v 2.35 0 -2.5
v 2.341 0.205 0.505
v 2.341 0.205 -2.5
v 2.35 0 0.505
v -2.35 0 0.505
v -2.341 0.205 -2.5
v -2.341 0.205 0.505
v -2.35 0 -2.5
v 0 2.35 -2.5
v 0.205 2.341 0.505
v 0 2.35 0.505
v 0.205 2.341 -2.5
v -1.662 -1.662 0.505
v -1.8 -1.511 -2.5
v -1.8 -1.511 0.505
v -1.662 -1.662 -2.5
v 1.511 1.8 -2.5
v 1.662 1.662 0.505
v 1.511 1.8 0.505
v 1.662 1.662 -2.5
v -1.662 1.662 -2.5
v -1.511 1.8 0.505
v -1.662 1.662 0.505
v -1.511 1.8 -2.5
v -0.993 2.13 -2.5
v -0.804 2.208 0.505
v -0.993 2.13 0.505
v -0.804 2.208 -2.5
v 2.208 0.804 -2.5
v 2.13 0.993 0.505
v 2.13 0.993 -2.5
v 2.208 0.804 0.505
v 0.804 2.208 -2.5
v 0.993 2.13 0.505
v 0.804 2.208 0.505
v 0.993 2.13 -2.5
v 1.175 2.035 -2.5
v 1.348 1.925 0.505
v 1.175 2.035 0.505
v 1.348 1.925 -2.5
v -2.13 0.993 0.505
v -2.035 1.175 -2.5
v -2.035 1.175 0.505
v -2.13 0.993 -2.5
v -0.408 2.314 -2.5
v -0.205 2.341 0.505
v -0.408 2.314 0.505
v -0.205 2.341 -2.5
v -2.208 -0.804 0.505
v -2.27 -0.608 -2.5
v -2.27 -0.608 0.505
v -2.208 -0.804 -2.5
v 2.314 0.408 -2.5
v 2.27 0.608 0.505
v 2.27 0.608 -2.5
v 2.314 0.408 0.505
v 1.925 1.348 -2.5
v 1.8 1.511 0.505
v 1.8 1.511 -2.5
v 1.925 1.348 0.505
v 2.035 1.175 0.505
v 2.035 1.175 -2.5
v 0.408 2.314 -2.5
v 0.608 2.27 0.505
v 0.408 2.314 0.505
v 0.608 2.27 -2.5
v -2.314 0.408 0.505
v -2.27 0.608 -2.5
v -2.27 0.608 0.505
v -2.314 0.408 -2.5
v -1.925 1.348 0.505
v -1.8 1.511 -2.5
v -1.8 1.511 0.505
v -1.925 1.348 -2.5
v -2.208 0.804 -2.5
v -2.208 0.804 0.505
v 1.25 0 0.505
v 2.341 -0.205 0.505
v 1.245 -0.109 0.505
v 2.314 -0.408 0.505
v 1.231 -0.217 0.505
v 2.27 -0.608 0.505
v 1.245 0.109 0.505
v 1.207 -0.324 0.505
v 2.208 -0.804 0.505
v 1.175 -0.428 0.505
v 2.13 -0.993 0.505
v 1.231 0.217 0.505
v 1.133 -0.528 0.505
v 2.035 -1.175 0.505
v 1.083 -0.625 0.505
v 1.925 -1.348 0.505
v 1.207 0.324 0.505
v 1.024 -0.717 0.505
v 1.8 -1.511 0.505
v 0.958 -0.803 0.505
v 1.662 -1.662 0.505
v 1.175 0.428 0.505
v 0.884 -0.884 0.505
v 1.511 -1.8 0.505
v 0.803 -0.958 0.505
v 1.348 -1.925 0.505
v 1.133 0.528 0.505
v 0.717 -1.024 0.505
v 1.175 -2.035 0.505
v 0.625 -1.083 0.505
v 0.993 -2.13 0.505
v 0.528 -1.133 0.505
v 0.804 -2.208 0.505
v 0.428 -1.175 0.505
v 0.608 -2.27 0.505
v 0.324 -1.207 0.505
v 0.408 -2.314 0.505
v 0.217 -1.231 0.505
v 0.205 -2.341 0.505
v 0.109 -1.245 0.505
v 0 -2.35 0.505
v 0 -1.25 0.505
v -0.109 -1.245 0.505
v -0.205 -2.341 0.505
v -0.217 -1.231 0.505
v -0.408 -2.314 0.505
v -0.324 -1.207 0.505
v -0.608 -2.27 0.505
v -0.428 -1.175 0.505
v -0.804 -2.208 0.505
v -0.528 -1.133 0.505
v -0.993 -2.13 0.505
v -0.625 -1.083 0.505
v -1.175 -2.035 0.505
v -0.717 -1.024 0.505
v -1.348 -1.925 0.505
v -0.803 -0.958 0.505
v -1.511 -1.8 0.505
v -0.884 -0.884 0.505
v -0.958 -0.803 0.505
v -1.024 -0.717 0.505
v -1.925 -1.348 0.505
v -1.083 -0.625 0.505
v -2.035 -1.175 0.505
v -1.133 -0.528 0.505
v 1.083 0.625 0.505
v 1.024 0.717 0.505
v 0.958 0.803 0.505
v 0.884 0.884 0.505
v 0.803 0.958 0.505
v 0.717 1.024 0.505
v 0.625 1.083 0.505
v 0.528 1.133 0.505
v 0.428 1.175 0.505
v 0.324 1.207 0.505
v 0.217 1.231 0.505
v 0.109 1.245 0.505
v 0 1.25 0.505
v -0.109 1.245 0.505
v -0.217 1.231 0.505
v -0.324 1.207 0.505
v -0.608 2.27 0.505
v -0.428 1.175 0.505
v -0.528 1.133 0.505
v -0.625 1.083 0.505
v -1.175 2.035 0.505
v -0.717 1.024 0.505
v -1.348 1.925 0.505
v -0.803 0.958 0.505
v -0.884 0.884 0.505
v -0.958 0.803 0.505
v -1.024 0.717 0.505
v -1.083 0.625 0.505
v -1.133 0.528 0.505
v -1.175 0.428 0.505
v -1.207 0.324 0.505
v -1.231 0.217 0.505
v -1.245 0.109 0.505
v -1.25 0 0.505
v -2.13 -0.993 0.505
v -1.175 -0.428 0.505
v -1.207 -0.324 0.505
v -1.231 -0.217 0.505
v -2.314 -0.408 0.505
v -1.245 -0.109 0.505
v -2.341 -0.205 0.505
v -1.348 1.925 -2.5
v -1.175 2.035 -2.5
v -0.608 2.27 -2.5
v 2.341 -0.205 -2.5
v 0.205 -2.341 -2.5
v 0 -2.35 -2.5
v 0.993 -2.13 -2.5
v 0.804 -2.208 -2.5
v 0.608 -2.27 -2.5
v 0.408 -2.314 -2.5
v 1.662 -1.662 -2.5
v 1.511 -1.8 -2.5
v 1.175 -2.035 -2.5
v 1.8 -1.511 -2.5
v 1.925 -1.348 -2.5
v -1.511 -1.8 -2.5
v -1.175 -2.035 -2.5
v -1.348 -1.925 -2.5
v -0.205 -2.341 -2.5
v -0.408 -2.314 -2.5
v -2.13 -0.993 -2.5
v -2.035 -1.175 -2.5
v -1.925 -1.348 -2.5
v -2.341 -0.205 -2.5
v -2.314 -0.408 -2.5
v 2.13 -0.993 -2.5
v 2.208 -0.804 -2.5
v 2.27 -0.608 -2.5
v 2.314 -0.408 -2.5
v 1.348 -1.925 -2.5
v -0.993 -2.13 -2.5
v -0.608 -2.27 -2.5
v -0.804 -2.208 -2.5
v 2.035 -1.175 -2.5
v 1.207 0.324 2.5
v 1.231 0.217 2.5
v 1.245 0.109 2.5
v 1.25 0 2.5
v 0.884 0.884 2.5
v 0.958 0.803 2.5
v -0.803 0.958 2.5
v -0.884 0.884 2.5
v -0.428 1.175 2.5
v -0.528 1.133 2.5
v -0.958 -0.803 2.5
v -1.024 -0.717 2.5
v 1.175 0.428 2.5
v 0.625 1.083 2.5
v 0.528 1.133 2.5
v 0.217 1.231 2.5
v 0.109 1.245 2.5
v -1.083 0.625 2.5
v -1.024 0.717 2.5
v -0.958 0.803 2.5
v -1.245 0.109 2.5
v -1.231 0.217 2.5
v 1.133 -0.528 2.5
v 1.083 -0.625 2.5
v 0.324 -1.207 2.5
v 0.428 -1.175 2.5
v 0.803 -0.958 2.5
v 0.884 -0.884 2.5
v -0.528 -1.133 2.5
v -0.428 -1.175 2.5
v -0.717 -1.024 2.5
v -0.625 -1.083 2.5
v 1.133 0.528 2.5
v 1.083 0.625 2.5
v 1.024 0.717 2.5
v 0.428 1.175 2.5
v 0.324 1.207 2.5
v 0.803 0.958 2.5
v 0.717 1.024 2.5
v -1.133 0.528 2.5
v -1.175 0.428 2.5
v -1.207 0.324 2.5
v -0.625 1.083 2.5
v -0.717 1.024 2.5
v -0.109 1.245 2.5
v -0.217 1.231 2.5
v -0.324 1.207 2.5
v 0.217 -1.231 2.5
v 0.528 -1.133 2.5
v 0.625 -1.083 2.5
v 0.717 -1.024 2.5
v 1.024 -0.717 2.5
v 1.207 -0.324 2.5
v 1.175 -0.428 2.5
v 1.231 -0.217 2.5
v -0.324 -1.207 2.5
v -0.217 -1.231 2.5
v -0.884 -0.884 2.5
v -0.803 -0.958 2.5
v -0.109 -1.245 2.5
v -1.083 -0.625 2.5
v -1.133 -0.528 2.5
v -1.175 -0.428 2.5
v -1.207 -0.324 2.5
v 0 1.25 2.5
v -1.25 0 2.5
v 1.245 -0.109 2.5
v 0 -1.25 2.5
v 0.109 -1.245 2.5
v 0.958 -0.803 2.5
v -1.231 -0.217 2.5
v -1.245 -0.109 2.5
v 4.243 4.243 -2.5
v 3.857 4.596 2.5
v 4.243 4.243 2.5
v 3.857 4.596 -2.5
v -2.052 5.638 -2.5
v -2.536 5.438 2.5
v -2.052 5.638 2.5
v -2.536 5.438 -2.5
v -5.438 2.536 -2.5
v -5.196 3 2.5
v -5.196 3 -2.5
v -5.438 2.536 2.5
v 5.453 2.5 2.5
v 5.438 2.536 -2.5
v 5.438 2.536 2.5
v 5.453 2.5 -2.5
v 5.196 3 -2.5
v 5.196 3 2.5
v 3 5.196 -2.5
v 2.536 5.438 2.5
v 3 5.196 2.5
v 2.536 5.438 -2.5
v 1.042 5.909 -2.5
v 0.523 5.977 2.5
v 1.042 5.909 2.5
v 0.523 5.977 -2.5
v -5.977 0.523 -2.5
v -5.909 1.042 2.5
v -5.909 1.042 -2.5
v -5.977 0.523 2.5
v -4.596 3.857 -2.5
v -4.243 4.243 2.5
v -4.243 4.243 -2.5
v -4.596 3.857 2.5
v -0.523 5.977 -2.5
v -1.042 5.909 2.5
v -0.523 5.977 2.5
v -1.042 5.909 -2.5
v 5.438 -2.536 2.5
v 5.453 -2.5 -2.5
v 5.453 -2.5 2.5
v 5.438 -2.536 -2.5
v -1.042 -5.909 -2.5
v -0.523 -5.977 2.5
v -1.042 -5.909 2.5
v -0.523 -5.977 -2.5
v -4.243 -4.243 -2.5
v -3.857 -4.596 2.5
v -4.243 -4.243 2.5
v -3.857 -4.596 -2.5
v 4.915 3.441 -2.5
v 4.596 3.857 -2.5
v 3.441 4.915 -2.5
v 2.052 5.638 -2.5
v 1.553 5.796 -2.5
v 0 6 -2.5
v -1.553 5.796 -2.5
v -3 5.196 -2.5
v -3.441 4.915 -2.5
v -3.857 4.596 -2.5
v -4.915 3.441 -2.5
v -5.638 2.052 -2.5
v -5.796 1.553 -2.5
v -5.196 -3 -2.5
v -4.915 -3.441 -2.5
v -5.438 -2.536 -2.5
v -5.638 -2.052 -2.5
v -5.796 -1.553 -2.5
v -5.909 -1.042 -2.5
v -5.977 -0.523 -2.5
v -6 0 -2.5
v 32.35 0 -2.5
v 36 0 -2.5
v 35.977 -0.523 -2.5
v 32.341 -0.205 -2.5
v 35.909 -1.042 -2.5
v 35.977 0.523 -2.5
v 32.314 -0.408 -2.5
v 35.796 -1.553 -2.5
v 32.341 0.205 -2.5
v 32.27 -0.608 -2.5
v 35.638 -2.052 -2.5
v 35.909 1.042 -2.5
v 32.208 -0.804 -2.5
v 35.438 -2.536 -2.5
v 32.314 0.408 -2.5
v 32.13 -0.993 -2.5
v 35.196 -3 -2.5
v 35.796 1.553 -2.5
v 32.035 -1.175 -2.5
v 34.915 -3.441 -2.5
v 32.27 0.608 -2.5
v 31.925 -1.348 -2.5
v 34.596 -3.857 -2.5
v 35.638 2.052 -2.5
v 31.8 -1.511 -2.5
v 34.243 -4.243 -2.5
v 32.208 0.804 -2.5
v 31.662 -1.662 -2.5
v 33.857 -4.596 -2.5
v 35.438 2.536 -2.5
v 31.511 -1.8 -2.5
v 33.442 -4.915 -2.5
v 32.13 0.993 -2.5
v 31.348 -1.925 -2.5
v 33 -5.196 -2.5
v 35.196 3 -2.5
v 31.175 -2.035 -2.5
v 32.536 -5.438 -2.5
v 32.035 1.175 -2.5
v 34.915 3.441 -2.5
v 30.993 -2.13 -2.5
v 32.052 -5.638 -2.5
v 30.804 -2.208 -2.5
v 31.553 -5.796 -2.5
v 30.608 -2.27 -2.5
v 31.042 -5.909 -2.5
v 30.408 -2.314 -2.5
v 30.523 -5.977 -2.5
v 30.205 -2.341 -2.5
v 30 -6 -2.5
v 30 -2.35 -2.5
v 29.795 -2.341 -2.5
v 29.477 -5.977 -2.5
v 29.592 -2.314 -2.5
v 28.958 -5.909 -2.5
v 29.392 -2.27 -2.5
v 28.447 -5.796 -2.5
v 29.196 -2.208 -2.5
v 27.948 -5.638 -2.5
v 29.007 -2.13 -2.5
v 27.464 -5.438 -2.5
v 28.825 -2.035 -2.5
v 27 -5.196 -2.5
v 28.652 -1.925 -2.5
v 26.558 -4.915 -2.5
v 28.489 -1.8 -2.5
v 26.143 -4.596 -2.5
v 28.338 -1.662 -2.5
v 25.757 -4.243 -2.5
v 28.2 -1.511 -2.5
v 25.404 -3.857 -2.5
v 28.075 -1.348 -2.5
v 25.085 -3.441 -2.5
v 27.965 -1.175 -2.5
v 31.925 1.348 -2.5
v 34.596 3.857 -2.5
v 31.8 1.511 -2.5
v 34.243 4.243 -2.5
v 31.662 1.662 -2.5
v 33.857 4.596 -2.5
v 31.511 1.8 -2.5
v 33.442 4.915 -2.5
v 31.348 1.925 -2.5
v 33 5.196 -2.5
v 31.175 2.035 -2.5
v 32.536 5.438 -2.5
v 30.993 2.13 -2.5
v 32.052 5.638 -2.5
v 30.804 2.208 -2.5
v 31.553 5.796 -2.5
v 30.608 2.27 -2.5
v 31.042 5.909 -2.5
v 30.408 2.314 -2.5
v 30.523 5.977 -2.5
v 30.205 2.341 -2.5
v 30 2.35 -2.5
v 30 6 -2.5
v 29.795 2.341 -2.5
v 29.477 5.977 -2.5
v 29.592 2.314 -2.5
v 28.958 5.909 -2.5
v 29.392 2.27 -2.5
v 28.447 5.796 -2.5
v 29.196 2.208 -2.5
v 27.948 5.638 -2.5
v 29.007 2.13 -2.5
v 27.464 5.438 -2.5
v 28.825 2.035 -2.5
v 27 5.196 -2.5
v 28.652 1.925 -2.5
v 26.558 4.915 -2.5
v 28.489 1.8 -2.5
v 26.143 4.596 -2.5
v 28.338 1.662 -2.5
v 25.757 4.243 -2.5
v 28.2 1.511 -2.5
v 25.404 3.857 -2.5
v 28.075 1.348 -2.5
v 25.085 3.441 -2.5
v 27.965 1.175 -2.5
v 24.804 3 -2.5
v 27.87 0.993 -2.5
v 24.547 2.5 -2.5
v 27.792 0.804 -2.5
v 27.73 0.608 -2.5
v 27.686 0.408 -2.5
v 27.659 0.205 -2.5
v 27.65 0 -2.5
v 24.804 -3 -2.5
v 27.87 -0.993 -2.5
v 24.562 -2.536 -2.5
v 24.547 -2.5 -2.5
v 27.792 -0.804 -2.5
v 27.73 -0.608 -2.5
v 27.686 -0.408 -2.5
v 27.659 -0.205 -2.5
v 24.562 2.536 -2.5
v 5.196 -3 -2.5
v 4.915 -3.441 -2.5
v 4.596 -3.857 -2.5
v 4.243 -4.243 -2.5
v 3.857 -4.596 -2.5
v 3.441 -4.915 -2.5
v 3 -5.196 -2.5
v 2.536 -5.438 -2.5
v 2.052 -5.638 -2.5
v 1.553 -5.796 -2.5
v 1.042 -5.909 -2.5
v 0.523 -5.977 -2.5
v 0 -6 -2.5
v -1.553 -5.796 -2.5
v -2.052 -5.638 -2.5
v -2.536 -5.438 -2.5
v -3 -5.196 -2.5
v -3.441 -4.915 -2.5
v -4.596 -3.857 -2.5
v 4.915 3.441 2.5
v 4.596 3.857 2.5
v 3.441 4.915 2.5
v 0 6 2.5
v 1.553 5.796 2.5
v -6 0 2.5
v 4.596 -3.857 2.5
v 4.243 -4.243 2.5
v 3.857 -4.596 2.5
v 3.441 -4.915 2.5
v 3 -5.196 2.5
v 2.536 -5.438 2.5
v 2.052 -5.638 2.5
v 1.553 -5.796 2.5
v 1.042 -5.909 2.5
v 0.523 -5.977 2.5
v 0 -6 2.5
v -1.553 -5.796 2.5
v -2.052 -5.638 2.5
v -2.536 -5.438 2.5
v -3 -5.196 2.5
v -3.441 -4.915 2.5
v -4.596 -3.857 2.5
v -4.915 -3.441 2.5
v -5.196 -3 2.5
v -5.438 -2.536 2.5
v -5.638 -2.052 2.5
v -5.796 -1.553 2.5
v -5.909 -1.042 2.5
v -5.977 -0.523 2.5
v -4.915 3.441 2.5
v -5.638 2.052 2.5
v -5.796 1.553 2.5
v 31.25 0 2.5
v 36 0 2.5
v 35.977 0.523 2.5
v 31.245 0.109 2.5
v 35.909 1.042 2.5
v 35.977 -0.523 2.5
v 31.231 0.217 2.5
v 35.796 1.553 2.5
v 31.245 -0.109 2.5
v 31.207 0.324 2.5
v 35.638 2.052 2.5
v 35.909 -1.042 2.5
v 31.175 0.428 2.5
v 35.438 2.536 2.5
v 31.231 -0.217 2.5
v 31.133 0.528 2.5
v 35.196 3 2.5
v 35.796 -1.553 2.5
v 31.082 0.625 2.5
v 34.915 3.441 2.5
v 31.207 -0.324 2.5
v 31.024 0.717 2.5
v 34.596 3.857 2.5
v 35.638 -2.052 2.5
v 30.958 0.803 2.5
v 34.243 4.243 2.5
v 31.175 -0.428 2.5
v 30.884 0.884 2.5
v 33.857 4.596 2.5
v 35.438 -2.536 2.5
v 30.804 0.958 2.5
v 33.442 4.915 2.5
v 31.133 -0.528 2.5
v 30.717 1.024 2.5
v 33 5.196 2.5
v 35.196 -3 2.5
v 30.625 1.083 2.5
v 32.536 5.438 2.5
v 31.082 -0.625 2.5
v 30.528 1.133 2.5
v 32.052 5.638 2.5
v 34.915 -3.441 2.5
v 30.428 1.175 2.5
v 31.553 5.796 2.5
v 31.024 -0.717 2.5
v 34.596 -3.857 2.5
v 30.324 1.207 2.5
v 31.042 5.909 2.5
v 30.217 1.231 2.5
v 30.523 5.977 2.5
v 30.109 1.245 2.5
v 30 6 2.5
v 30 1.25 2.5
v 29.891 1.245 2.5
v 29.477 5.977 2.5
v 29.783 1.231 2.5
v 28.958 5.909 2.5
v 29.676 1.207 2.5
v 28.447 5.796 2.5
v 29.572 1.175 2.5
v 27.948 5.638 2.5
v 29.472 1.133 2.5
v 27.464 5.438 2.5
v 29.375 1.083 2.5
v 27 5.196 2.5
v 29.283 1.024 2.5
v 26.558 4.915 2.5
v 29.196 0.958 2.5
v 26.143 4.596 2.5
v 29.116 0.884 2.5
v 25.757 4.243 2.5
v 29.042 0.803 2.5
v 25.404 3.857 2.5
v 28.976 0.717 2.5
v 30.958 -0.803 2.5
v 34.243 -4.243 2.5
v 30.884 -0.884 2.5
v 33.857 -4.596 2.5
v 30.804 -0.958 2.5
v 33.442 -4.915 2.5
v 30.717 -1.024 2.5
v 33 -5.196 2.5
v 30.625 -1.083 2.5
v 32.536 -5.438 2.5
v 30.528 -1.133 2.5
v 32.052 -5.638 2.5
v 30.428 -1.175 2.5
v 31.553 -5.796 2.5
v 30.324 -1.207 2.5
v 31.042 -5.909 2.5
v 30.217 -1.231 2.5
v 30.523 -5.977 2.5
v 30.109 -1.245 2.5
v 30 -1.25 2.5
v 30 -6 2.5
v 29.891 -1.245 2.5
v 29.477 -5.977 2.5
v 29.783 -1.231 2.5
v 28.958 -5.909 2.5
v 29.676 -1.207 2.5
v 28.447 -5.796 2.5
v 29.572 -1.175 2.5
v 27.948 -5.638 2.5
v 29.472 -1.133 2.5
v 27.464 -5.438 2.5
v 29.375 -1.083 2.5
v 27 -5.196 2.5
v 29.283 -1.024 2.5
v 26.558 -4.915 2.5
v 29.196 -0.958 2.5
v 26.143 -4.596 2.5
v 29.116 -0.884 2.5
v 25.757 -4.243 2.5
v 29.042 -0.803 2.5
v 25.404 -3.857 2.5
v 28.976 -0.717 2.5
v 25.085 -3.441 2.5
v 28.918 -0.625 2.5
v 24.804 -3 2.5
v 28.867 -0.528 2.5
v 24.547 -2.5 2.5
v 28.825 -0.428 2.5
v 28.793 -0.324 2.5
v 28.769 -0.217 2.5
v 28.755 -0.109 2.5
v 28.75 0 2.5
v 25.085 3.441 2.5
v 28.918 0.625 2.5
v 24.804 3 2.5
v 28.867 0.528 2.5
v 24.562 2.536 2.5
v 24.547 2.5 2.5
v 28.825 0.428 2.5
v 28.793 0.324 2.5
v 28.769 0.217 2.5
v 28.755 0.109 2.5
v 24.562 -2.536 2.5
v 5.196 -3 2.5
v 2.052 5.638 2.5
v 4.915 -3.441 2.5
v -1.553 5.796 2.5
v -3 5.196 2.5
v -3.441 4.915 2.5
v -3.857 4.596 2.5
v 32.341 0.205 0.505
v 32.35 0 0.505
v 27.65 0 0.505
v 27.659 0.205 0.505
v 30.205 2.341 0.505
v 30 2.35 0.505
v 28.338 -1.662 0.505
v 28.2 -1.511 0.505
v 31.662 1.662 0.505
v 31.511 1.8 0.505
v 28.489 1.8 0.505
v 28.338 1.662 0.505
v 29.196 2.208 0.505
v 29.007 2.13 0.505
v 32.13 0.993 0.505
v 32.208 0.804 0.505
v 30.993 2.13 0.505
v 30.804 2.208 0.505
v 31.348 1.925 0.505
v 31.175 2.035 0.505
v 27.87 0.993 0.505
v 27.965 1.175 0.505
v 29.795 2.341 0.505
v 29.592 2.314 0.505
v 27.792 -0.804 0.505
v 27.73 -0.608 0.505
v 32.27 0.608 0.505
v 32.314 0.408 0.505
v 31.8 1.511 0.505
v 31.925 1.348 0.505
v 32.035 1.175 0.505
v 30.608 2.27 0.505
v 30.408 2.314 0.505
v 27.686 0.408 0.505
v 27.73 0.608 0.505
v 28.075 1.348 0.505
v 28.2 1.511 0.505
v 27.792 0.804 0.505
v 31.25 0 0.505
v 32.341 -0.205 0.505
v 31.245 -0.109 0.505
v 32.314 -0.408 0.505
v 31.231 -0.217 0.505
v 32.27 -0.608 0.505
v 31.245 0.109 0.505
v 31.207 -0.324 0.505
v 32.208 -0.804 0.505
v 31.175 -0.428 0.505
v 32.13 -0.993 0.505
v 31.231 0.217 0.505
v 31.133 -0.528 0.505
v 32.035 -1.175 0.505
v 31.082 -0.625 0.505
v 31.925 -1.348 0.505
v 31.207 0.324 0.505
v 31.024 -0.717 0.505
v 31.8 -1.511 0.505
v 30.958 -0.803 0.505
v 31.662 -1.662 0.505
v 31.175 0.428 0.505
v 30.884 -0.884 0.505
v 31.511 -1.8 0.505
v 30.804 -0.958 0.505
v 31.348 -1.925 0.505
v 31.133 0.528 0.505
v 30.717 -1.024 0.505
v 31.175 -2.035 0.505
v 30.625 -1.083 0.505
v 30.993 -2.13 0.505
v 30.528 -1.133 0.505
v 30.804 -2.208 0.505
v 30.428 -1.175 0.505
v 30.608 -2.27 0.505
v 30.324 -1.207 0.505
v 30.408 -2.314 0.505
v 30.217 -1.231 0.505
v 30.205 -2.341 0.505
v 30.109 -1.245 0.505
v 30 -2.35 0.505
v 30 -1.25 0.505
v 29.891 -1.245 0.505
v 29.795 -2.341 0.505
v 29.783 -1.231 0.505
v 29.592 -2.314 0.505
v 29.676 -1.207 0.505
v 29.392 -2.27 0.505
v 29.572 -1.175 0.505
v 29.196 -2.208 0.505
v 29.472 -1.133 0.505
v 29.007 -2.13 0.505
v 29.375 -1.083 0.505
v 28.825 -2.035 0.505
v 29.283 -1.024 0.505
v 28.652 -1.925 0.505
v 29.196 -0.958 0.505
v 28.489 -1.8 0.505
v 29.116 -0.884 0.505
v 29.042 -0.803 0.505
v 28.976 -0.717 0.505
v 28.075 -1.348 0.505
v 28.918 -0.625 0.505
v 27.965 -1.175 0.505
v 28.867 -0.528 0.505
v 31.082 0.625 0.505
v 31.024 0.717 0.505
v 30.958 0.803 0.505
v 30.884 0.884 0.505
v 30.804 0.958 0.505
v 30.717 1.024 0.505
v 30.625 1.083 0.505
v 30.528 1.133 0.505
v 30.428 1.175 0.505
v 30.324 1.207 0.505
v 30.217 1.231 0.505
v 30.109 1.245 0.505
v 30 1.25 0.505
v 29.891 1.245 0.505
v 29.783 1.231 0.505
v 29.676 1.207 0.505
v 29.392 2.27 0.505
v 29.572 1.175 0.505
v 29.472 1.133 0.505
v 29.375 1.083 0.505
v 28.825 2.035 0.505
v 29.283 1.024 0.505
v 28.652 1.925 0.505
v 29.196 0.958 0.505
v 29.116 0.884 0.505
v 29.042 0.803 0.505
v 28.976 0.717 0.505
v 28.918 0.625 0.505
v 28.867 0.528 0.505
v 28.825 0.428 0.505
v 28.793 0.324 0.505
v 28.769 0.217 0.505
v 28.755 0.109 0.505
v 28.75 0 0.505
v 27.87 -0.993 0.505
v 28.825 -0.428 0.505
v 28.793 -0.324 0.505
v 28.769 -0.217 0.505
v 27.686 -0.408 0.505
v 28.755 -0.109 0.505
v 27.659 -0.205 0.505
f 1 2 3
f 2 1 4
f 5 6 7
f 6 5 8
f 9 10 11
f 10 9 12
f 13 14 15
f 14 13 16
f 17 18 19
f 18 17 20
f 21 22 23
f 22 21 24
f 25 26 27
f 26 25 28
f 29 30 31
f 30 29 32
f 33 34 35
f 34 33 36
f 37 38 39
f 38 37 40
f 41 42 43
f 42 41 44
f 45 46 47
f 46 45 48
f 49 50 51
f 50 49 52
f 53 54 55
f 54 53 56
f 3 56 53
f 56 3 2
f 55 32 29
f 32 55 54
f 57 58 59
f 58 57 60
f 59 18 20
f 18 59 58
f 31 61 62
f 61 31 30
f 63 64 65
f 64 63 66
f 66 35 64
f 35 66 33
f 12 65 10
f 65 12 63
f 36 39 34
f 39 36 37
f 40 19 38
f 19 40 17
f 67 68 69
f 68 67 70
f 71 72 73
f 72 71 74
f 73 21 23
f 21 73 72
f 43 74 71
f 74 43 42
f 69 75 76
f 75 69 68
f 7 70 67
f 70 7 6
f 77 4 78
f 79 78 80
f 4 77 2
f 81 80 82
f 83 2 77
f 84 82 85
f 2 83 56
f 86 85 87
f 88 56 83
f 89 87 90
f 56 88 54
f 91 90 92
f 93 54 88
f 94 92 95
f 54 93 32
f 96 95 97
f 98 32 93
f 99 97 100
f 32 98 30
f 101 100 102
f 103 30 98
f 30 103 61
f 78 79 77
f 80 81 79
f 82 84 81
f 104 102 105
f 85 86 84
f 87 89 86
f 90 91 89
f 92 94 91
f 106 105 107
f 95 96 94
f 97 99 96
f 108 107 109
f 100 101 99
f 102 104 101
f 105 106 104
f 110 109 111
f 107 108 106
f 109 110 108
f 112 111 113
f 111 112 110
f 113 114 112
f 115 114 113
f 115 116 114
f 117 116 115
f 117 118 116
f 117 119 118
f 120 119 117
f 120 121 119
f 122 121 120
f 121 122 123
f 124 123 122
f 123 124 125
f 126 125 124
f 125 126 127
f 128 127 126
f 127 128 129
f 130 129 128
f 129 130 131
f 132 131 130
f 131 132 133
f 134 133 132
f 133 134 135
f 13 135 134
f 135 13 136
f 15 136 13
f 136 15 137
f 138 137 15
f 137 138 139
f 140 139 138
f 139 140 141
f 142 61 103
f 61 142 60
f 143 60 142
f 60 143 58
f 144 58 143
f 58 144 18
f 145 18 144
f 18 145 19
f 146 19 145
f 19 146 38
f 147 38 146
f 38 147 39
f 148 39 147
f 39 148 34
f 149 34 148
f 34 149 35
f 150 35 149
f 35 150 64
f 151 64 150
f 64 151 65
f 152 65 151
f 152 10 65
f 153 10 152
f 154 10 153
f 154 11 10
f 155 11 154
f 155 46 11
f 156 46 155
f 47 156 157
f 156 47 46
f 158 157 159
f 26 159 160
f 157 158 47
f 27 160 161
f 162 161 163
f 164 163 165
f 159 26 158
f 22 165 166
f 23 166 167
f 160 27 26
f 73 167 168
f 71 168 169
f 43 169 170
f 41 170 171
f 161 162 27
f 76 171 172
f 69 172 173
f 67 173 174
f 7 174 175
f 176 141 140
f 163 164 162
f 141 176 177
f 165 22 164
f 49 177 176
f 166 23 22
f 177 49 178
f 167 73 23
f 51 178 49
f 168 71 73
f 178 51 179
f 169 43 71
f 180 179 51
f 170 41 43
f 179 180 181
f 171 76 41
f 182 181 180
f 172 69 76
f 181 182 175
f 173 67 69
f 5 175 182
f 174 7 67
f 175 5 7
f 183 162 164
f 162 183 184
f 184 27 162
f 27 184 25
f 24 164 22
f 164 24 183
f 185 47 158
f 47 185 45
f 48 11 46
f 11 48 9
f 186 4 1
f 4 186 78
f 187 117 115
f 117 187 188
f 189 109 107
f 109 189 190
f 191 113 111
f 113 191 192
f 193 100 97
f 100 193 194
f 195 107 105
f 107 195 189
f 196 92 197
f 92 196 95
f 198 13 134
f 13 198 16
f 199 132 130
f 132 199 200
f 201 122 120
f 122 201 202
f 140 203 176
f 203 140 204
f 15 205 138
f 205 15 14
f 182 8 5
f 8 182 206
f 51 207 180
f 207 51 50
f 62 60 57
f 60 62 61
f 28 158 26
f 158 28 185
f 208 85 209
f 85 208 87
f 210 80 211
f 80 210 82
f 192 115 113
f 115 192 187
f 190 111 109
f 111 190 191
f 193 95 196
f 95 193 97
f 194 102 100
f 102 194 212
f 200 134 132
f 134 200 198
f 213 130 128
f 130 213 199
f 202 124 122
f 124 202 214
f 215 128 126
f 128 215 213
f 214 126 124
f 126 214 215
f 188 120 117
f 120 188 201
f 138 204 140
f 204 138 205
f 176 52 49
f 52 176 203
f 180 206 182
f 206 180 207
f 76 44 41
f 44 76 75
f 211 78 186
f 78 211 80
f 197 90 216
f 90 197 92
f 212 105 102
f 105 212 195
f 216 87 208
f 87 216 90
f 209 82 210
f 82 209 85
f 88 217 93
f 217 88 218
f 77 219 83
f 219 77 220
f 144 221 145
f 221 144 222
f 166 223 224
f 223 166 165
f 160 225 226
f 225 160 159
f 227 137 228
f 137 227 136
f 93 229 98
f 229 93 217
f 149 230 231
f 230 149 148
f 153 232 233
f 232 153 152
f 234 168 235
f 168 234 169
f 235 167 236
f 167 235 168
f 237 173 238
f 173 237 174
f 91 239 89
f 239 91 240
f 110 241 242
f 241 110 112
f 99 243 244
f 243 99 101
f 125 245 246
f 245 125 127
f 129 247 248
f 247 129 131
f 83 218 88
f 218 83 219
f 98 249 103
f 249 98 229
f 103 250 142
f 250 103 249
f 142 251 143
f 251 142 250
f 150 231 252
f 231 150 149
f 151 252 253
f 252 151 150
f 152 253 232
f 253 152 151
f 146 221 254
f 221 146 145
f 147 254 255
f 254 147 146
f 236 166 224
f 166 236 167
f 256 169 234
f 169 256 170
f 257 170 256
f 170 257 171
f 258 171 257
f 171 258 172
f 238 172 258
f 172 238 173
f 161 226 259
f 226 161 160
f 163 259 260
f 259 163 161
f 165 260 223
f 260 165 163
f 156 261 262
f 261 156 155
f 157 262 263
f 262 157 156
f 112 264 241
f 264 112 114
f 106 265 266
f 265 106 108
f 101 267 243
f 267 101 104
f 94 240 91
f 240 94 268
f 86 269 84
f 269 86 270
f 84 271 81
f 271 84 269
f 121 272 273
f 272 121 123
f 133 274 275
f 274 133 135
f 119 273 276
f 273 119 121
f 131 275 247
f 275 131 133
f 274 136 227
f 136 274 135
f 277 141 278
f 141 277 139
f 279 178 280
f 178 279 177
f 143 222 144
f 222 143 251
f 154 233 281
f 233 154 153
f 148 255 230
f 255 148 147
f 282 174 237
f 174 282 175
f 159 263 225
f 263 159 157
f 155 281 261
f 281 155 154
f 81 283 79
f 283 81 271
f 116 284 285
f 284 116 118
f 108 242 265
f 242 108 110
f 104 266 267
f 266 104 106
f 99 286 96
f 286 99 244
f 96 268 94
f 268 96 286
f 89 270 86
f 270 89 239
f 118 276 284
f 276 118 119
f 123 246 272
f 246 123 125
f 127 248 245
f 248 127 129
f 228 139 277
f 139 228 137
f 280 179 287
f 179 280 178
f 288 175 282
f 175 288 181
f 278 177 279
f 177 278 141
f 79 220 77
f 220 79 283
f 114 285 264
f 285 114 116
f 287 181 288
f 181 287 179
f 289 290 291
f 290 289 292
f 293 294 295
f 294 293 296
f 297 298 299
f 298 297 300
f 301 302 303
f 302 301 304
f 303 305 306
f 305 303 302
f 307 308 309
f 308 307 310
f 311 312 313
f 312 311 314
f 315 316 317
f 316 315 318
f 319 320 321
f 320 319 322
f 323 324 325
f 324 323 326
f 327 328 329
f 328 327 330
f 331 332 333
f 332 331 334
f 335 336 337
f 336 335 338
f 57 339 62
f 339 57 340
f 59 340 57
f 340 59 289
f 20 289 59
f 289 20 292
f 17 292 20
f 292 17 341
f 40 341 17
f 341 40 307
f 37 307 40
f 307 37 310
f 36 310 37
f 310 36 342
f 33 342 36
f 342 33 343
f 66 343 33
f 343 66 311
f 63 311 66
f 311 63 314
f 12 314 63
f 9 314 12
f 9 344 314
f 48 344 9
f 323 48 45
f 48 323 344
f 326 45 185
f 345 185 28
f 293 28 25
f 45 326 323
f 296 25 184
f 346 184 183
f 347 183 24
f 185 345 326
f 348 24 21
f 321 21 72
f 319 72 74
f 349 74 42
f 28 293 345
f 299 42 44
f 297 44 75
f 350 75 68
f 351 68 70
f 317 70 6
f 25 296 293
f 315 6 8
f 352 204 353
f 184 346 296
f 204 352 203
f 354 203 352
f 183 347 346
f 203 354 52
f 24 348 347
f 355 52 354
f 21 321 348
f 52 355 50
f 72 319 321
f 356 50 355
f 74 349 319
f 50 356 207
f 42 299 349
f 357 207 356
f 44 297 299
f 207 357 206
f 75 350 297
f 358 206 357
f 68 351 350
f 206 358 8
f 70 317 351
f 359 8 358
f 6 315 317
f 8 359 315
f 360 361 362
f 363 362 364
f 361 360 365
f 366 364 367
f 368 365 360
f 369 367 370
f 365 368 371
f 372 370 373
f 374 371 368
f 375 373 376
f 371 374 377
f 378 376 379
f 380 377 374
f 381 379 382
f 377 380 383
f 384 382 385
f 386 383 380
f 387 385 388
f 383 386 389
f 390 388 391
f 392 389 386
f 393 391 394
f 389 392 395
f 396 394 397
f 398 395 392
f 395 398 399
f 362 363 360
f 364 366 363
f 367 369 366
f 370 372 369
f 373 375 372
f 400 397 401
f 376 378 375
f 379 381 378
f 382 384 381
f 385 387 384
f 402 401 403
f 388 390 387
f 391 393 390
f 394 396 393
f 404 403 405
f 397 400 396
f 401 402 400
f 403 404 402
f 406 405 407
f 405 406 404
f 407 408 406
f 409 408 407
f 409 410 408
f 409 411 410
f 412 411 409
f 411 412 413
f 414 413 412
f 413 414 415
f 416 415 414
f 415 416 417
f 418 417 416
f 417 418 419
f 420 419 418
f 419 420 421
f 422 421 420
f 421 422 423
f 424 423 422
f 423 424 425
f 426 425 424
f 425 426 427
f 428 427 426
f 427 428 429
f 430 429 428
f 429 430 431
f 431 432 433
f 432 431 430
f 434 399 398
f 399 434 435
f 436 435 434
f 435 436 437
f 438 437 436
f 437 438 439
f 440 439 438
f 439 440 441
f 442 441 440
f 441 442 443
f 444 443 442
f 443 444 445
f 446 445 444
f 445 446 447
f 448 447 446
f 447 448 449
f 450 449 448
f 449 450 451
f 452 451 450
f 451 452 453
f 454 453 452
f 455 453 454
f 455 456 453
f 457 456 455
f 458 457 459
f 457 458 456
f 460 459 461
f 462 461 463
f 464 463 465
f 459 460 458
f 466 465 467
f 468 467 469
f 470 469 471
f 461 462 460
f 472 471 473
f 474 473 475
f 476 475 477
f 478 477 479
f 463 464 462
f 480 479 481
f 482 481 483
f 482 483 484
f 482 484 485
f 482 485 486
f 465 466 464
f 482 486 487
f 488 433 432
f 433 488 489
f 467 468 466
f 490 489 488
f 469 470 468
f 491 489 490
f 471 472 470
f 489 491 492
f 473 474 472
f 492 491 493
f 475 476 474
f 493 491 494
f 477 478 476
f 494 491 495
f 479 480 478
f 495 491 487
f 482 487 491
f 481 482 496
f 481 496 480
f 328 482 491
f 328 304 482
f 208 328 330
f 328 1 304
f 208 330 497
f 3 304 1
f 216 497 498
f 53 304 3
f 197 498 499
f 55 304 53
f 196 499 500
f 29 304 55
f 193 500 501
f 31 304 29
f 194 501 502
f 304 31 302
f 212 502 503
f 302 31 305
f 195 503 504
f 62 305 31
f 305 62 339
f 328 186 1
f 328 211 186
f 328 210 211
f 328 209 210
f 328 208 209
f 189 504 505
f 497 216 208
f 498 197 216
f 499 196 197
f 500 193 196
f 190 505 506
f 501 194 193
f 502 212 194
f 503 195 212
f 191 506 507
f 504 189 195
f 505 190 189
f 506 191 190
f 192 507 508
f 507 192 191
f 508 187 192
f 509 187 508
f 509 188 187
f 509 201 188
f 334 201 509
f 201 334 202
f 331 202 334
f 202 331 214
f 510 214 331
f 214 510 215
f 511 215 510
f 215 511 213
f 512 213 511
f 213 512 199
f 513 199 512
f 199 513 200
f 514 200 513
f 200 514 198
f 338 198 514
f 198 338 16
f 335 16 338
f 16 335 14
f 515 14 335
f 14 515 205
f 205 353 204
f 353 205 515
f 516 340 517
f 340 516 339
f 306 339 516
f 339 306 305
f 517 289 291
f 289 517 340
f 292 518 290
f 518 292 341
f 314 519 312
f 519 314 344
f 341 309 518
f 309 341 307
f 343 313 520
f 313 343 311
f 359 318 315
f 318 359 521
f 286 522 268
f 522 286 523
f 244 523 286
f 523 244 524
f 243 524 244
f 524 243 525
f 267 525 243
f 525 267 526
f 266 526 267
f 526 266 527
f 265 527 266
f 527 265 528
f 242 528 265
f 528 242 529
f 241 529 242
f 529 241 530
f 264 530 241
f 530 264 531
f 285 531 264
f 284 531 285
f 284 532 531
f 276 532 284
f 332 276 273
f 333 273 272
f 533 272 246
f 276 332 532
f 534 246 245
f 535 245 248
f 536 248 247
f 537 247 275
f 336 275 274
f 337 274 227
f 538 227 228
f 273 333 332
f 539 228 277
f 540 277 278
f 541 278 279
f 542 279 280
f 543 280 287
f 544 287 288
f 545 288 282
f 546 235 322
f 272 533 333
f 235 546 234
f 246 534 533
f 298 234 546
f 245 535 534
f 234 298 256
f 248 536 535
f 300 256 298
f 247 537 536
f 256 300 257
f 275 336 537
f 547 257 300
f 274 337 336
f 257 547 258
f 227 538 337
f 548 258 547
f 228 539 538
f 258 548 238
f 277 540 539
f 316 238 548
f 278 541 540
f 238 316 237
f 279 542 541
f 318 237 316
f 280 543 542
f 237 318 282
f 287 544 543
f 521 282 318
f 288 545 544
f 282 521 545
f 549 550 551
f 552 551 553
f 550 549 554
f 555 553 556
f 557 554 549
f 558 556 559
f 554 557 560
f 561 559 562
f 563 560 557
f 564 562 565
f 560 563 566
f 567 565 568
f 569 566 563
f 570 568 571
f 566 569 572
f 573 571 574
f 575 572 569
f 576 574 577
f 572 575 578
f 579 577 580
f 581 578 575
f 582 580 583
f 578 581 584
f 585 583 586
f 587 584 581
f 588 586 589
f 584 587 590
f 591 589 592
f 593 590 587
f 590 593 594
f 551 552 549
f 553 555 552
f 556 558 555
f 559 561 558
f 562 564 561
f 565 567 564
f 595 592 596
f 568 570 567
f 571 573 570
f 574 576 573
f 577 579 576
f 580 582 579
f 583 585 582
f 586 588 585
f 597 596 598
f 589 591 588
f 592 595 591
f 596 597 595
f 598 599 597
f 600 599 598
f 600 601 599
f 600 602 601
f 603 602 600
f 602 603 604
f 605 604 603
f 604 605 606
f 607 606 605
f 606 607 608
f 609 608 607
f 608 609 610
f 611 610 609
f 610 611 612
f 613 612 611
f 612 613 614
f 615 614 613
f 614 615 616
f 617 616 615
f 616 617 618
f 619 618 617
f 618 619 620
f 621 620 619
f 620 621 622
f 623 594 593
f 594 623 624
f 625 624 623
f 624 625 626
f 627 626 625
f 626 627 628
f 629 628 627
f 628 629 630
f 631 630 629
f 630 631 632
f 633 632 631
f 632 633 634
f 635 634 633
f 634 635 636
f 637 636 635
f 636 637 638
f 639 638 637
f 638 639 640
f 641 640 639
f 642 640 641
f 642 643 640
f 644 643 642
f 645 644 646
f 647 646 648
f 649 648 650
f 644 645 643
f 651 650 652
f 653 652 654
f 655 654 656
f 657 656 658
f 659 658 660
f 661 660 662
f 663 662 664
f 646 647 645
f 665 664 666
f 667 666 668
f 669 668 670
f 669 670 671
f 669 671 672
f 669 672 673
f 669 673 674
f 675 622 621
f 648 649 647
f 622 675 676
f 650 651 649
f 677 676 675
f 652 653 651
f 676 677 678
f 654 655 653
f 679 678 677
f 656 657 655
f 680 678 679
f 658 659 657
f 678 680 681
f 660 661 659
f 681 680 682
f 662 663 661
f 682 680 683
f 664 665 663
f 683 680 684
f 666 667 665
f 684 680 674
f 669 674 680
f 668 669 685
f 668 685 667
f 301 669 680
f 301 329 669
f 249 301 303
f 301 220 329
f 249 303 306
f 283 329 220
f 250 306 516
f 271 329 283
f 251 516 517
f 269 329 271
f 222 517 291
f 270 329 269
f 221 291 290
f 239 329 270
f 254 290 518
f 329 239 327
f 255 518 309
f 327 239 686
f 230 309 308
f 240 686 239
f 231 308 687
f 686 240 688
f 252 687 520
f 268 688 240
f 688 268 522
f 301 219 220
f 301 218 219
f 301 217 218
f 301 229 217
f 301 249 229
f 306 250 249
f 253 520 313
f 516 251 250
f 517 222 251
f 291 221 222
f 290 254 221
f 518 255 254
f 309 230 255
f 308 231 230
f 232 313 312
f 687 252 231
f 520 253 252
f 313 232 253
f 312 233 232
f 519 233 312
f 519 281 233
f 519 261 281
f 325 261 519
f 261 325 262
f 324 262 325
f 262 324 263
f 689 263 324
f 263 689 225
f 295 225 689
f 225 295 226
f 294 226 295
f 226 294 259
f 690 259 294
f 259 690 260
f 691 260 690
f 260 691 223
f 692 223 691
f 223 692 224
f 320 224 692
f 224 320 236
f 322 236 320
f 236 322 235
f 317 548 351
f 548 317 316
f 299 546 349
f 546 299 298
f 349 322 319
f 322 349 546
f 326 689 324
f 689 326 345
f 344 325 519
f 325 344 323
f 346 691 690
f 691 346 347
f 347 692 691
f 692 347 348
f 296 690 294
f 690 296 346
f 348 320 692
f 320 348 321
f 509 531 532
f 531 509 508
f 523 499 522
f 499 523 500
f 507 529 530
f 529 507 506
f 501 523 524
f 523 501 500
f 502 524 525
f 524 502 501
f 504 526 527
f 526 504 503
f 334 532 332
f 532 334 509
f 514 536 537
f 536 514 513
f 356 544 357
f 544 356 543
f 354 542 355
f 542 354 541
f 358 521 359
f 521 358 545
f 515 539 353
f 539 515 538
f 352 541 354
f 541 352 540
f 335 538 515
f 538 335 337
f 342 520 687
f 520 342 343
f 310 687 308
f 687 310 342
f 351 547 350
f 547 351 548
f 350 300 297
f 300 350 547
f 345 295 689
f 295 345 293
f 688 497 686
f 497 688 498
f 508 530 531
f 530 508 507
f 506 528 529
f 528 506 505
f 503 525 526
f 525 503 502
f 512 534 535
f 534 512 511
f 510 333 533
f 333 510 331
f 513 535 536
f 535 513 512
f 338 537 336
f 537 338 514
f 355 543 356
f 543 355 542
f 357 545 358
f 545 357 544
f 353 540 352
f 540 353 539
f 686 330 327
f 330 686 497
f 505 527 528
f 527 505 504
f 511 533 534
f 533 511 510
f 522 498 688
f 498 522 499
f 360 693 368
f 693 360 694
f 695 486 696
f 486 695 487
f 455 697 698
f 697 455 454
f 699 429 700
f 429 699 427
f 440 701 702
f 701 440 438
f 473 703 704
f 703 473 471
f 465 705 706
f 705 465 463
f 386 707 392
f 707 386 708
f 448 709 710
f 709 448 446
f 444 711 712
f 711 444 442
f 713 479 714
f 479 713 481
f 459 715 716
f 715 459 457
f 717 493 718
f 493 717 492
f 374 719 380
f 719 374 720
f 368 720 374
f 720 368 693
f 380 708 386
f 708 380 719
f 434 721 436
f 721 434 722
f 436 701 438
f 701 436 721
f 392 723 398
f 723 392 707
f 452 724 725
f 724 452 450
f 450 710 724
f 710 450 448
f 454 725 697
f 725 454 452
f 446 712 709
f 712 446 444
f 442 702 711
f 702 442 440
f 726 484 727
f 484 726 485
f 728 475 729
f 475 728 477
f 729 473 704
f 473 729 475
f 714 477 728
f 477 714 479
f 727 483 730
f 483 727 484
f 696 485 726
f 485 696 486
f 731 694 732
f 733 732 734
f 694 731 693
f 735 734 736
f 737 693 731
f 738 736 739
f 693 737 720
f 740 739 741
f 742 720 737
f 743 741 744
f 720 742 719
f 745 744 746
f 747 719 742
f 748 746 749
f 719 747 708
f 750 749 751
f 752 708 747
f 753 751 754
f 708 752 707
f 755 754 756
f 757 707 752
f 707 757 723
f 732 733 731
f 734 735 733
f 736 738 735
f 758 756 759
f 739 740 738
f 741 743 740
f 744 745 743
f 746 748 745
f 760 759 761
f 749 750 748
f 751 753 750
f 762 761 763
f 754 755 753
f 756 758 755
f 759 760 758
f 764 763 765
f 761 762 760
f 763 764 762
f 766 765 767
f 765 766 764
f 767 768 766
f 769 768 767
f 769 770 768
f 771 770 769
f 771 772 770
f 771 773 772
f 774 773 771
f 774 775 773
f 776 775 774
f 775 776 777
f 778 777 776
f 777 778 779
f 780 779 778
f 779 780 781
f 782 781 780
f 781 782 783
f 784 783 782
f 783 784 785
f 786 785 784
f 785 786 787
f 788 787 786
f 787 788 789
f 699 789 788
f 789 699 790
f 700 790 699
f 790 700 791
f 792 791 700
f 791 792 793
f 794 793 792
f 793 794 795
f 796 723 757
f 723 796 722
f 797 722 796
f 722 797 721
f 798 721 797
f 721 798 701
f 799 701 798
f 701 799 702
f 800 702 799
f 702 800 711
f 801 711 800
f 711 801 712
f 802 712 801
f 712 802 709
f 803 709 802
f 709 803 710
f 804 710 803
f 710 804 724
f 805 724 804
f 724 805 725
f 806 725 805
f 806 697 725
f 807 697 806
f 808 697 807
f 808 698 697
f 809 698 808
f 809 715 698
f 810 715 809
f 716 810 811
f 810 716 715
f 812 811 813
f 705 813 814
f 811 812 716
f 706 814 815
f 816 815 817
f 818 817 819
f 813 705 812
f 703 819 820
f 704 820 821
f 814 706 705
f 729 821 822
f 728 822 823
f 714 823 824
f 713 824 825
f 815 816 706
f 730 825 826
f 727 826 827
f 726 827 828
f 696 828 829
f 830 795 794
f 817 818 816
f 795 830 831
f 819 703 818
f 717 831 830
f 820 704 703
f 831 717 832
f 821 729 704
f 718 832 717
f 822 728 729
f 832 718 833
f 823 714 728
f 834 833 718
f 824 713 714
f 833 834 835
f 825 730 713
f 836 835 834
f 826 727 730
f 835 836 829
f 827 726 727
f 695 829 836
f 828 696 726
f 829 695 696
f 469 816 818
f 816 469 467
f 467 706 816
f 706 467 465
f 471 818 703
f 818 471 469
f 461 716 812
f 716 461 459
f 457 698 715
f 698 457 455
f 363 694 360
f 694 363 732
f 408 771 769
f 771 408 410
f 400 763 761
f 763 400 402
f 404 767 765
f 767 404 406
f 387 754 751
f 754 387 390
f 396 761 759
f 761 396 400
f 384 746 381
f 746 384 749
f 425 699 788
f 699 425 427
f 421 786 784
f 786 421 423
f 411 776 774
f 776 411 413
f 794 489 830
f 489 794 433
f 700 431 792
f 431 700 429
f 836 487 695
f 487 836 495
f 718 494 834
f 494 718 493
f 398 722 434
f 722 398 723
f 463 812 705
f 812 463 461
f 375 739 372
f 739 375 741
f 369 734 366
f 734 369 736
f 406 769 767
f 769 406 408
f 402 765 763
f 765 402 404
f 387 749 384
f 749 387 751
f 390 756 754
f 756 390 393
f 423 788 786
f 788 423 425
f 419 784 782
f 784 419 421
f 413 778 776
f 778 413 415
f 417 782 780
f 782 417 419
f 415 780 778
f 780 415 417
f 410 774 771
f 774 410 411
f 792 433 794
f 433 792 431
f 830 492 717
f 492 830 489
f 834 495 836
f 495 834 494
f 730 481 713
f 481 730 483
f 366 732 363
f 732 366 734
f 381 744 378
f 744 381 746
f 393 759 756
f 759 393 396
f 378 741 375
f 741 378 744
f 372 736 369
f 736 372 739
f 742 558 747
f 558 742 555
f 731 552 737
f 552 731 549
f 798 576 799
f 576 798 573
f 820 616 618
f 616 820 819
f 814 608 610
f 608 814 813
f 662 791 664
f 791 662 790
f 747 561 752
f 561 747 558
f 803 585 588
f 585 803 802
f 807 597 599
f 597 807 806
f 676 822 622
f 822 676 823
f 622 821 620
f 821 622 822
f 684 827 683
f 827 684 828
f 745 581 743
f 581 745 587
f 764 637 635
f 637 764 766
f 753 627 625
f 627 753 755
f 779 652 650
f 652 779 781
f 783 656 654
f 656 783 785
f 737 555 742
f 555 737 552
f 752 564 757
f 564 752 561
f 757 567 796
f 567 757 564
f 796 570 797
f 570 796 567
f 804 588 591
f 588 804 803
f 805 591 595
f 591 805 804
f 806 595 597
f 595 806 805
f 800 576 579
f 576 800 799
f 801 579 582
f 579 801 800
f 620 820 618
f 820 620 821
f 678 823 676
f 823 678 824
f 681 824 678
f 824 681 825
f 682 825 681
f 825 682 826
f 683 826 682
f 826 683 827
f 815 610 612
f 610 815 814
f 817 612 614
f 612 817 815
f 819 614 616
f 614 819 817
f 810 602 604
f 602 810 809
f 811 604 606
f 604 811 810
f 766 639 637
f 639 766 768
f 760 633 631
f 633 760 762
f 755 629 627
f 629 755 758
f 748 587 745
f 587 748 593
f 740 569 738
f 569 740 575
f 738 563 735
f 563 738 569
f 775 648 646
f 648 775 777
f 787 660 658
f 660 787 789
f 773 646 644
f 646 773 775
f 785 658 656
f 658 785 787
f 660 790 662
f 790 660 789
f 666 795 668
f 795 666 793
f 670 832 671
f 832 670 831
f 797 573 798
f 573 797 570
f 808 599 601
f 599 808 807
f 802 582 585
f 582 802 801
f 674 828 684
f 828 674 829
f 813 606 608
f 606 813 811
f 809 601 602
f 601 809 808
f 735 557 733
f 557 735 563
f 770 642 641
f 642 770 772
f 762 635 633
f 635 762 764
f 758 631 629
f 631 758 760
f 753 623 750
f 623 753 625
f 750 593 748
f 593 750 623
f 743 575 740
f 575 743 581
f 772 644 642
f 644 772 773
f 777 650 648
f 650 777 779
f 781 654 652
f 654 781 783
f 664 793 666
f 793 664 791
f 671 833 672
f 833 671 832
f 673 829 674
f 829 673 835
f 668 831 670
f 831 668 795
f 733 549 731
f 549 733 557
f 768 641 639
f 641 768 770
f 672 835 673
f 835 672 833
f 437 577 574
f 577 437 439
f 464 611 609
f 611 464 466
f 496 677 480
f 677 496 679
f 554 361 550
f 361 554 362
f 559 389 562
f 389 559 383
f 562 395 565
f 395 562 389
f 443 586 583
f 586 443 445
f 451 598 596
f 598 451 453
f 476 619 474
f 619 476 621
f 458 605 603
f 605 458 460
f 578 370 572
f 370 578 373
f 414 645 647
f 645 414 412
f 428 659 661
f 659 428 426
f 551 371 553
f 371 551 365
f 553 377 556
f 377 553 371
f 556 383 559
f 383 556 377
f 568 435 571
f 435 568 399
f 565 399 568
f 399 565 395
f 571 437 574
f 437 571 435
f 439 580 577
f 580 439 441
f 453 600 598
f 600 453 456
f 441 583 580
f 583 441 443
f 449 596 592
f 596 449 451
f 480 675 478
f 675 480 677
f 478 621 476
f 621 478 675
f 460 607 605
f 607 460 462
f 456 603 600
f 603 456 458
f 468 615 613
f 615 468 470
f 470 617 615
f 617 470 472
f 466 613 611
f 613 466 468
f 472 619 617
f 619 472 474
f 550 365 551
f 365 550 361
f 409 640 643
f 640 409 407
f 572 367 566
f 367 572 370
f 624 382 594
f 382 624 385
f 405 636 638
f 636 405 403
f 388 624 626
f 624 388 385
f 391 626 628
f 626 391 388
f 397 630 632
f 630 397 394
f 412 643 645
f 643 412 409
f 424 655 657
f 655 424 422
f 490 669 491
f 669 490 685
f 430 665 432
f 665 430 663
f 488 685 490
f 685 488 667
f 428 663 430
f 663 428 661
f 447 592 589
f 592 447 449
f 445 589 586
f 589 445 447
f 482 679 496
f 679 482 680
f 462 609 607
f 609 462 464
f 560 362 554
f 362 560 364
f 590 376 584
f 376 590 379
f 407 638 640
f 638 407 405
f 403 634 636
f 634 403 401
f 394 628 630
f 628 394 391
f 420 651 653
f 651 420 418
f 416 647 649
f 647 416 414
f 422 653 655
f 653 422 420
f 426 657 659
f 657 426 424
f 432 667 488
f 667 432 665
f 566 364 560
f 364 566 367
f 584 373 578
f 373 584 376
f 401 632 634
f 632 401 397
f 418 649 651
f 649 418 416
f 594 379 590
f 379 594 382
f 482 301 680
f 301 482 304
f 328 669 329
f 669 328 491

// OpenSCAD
// servos 2-3 mount

$fa=5; $fs=0.1;

difference(){
    
    cylinder(h=5, r=6, center=true);
    
    union()
    {
        translate([0, 0, -1]) cylinder(h=3.01, r=2.35, center=true);
        translate([0, 0, 1.5]) cylinder(h=2.01, r=1.25, center=true);
        //translate([0, 0, 2]) cylinder(h=1.01, r =2.35, center=true);
    }
    
}

translate([30,0,0])
difference(){
    
    cylinder(h=5, r=6, center=true);
    
    union()
    {
        translate([0, 0, -1]) cylinder(h=3.01, r=2.35, center=true);
        translate([0, 0, 1.5]) cylinder(h=2.01, r=1.25, center=true);
        //translate([0, 0, 2]) cylinder(h=1.01, r =2.35, center=true);
    }
    
}
        
translate([2.5, -2.5, -2.5]) cube([25, 5, 5]);
